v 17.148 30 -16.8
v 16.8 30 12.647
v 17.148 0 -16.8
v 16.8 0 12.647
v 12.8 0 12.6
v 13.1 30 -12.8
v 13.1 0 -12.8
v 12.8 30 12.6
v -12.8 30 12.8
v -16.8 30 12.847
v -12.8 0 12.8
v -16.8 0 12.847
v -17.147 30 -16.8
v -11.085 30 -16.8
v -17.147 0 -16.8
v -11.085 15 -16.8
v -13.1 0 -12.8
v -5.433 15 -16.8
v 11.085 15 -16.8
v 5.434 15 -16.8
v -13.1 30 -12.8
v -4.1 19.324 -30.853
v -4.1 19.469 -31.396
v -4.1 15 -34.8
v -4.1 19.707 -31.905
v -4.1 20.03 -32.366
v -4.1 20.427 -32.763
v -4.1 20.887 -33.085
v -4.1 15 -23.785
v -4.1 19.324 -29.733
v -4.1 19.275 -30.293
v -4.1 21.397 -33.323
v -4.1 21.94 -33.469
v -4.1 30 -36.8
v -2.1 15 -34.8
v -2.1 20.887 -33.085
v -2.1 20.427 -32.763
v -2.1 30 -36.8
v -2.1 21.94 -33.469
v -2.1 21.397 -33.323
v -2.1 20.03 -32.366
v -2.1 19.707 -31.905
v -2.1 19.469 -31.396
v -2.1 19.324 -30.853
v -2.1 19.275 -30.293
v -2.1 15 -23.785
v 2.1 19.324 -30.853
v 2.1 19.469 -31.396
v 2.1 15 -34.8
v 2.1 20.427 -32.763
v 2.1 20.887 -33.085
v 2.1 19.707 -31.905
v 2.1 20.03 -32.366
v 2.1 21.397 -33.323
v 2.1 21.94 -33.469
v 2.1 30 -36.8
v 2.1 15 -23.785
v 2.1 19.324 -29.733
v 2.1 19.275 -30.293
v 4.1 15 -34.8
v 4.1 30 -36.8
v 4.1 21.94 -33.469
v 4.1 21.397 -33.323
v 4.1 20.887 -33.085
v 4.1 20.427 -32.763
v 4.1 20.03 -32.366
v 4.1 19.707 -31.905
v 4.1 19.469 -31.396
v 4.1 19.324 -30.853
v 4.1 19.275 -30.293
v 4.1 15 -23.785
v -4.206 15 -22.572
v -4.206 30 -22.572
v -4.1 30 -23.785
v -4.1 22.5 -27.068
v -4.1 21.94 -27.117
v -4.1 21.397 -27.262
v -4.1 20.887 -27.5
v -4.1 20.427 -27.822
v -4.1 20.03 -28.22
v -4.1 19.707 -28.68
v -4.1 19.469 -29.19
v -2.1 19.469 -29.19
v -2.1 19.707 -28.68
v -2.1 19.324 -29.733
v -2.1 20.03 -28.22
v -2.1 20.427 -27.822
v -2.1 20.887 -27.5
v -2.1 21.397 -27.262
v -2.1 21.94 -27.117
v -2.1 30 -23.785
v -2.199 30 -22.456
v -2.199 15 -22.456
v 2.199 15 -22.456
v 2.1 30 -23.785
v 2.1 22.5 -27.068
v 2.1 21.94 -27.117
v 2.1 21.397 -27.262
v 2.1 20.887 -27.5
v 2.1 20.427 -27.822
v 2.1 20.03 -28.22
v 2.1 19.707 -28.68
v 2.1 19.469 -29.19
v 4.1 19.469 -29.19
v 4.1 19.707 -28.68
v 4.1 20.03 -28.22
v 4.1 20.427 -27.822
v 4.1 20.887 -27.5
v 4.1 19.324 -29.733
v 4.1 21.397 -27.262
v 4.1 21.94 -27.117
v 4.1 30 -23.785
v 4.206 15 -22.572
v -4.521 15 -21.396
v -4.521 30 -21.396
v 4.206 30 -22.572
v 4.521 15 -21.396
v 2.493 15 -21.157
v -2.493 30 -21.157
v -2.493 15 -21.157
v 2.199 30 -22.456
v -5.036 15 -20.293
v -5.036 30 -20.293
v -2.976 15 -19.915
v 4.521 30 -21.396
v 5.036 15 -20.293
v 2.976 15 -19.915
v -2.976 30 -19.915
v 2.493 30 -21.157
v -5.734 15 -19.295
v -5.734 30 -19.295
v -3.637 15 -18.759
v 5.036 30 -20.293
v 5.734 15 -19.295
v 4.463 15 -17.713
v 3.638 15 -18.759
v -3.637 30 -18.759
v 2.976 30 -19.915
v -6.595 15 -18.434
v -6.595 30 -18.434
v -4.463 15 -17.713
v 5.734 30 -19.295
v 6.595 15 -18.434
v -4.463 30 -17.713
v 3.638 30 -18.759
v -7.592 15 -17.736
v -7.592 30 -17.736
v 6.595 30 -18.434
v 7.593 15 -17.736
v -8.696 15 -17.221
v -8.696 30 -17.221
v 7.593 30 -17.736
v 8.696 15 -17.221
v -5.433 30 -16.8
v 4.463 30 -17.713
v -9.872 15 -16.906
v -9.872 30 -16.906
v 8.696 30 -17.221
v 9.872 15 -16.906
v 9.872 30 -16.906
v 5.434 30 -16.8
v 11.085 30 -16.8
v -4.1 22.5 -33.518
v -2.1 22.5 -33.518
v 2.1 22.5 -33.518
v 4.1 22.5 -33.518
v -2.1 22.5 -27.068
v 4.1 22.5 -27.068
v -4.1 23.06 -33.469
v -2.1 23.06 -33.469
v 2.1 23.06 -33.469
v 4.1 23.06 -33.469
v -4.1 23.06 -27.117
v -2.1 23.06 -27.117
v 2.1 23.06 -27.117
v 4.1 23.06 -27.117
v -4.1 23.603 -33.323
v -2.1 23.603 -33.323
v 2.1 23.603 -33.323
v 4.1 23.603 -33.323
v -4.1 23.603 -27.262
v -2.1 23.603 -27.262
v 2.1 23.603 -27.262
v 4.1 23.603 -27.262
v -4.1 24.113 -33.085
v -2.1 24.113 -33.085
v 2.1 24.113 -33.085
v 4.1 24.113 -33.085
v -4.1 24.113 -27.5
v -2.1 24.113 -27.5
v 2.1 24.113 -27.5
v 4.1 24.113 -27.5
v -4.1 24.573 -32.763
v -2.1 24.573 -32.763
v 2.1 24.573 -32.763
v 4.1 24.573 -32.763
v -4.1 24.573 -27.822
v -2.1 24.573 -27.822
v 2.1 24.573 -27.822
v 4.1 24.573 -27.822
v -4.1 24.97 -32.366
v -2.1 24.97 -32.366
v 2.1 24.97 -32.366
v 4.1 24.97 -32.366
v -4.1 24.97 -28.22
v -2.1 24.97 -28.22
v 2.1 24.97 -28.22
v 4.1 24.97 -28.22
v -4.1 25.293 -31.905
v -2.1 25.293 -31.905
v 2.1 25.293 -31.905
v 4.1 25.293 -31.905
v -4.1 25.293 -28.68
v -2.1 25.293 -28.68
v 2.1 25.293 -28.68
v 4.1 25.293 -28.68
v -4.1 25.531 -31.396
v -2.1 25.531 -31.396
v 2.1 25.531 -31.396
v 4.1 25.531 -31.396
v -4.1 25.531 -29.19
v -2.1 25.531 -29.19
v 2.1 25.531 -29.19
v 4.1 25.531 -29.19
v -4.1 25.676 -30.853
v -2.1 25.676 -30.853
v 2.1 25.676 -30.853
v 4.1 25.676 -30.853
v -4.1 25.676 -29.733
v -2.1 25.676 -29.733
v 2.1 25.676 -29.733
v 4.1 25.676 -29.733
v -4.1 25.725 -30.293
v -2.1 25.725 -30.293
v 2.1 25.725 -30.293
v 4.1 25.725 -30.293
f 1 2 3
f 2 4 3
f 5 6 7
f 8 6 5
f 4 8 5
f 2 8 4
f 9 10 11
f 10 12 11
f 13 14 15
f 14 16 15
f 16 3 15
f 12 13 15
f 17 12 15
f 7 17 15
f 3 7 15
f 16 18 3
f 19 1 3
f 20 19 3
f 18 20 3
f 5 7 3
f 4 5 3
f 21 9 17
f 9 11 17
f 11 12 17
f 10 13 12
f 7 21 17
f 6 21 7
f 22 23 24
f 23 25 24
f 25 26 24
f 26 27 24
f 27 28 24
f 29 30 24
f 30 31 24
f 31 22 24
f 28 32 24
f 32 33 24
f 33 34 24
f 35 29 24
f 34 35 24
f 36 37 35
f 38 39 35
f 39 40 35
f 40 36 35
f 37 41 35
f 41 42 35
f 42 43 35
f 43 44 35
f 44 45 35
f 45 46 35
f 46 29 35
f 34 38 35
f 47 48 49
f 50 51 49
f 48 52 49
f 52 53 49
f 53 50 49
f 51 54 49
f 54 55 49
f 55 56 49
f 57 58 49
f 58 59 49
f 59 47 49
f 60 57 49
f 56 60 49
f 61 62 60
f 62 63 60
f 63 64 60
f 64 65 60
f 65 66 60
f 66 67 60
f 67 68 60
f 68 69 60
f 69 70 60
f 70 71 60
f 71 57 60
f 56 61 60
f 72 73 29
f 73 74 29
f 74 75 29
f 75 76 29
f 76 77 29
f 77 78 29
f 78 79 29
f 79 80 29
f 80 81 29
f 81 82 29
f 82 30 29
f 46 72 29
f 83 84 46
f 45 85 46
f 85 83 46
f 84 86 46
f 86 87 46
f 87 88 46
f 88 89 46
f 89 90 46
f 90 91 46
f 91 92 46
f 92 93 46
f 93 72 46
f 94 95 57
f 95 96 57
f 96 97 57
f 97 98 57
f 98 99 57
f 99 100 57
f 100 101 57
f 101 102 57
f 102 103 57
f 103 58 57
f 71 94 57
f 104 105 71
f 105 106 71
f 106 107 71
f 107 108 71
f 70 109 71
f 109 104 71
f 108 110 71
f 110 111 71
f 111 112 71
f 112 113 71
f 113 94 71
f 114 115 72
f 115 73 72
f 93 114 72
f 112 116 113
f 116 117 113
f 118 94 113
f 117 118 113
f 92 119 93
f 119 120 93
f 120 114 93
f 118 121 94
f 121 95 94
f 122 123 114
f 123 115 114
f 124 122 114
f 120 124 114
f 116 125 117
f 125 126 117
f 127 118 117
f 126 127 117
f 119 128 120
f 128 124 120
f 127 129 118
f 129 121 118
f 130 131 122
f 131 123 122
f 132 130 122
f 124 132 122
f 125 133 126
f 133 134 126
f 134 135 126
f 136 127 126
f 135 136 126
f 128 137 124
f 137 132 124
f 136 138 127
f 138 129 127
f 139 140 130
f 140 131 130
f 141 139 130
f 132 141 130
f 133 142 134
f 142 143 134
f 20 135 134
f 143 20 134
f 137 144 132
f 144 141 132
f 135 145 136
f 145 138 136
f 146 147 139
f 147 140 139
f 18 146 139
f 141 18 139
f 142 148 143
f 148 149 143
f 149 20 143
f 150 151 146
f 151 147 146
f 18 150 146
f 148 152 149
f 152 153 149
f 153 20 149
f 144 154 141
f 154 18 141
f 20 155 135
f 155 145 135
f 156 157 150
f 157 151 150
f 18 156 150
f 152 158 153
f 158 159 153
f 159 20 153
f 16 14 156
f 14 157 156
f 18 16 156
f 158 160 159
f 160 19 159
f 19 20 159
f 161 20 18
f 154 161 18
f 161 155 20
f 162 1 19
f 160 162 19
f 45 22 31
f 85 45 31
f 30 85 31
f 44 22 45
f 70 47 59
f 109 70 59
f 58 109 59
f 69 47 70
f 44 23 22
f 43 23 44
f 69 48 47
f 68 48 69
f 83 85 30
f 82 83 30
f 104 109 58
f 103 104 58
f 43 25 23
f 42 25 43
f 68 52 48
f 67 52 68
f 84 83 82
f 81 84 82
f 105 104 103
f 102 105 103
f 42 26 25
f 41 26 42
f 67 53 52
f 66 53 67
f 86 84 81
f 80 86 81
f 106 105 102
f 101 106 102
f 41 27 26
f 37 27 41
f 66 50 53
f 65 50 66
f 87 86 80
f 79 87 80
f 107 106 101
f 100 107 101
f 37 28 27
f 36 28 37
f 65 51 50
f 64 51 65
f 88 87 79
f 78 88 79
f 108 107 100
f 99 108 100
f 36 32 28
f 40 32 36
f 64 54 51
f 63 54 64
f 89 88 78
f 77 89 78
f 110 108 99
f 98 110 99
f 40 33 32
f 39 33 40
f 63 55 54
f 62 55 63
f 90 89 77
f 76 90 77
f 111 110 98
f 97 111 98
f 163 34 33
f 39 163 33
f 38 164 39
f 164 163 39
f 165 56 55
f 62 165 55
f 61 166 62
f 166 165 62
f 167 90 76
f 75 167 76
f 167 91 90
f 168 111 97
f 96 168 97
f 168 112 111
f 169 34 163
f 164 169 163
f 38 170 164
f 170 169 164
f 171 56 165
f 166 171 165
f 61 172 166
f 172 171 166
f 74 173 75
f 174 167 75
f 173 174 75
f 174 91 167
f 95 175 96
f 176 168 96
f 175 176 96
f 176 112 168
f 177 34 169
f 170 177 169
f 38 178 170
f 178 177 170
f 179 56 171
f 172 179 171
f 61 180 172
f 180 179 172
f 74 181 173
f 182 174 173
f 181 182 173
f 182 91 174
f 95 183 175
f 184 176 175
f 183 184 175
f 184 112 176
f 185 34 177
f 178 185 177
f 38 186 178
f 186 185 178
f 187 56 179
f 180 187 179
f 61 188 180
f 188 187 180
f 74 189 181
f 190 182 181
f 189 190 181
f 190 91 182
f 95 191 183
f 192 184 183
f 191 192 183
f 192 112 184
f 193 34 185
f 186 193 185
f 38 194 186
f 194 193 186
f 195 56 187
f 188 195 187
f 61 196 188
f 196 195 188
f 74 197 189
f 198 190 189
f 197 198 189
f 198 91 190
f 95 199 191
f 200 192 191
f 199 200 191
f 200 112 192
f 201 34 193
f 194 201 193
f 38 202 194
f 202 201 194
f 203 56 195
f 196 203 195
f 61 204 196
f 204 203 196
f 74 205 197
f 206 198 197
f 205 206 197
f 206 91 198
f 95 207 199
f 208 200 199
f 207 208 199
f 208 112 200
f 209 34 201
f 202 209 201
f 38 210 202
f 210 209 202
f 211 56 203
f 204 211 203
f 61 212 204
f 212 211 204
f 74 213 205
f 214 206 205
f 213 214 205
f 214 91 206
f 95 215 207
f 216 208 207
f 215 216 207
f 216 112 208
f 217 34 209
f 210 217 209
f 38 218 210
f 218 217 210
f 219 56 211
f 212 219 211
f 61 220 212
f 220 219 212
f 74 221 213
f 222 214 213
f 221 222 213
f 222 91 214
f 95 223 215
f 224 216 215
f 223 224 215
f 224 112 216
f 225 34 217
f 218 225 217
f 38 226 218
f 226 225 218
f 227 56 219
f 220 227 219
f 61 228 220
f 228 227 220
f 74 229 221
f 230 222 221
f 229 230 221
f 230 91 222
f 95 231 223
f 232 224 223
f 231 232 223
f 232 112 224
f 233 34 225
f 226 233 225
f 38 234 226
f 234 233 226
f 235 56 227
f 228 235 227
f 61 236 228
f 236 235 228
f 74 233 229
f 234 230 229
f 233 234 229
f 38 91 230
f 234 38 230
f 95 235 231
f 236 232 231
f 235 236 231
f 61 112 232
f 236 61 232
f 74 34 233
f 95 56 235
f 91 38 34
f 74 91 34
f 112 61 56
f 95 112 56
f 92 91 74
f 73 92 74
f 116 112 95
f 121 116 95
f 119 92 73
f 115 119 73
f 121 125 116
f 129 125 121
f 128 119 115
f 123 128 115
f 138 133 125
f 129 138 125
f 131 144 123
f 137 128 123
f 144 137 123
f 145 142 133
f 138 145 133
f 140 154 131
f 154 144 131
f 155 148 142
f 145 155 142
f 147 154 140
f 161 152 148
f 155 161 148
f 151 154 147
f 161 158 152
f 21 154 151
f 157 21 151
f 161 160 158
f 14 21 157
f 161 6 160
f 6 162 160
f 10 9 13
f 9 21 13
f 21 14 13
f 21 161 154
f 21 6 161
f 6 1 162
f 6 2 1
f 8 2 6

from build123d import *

# Parameters (mm, degrees)
BOSS_EXTRUDE1_DEPTH = 30
BOSS_EXTRUDE2_DEPTH = 15
SKETCH3_R           = 3.225
CUT_EXTRUDE1_DEPTH  = 15
CUT_EXTRUDE3_DEPTH  = 15


with BuildPart() as part:
    # Sketch1 → Boss-Extrude1 (new body)
    with BuildSketch(Plane(origin=(0, 0, 0), x_dir=(1, 0, 0), z_dir=(0, 1, 0))):
        Polygon((-12.8, -12.8), (-13.1, 12.8), (13.1, 12.8), (12.8, -12.6), (16.799721029, -12.6472408), (17.147523085, 16.8), (-17.147149649, 16.8), (-16.79972537, -12.846871782), align=None)
    extrude(amount=BOSS_EXTRUDE1_DEPTH)

    # Sketch2 → Boss-Extrude2 (add)
    with BuildSketch(Plane(origin=(0, 30, 0), x_dir=(1, 0, 0), z_dir=(0, 1, 0))):
        with BuildLine():
            Line((-4.099813282, 36.8), (-4.099813282, 23.785134539))
            ThreePointArc((-4.099813282, 23.785134539), (-6.145711821, 18.845898539), (-11.084947821, 16.8))
            Line((-11.084947821, 16.8), (-5.433351749, 16.8))
            ThreePointArc((-5.433351749, 16.8), (-2.975909846, 19.915231981), (-2.099813282, 23.785134539))
            Line((-2.099813282, 23.785134539), (-2.099813282, 36.8))
            Line((-2.099813282, 36.8), (-4.099813282, 36.8))
        make_face()
        with BuildLine():
            Line((4.100186718, 36.8), (2.100186718, 36.8))
            Line((2.100186718, 36.8), (2.100186718, 23.785134539))
            ThreePointArc((2.100186718, 23.785134539), (2.976283283, 19.915231981), (5.433725186, 16.8))
            Line((5.433725186, 16.8), (11.085321257, 16.8))
            ThreePointArc((11.085321257, 16.8), (6.146085257, 18.845898539), (4.100186718, 23.785134539))
            Line((4.100186718, 23.785134539), (4.100186718, 36.8))
        make_face()
    extrude(amount=-BOSS_EXTRUDE2_DEPTH)

    # Sketch3 → Cut-Extrude1 (cut)
    with BuildSketch(Plane.ZY.offset(4.099813282)):
        with Locations((-30.29256727, 22.5)):
            Circle(SKETCH3_R)
    extrude(amount=-CUT_EXTRUDE1_DEPTH, mode=Mode.SUBTRACT)

    # Sketch8 → Cut-Extrude3 (cut)
    with BuildSketch(Plane(origin=(4.100186718, 0, 0), x_dir=(0, 0, -1), z_dir=(1, 0, 0))):
        Polygon((36.8, 30), (36.8, 15), (34.8, 15), align=None)
    extrude(amount=-CUT_EXTRUDE3_DEPTH, mode=Mode.SUBTRACT)


solid = part.part
